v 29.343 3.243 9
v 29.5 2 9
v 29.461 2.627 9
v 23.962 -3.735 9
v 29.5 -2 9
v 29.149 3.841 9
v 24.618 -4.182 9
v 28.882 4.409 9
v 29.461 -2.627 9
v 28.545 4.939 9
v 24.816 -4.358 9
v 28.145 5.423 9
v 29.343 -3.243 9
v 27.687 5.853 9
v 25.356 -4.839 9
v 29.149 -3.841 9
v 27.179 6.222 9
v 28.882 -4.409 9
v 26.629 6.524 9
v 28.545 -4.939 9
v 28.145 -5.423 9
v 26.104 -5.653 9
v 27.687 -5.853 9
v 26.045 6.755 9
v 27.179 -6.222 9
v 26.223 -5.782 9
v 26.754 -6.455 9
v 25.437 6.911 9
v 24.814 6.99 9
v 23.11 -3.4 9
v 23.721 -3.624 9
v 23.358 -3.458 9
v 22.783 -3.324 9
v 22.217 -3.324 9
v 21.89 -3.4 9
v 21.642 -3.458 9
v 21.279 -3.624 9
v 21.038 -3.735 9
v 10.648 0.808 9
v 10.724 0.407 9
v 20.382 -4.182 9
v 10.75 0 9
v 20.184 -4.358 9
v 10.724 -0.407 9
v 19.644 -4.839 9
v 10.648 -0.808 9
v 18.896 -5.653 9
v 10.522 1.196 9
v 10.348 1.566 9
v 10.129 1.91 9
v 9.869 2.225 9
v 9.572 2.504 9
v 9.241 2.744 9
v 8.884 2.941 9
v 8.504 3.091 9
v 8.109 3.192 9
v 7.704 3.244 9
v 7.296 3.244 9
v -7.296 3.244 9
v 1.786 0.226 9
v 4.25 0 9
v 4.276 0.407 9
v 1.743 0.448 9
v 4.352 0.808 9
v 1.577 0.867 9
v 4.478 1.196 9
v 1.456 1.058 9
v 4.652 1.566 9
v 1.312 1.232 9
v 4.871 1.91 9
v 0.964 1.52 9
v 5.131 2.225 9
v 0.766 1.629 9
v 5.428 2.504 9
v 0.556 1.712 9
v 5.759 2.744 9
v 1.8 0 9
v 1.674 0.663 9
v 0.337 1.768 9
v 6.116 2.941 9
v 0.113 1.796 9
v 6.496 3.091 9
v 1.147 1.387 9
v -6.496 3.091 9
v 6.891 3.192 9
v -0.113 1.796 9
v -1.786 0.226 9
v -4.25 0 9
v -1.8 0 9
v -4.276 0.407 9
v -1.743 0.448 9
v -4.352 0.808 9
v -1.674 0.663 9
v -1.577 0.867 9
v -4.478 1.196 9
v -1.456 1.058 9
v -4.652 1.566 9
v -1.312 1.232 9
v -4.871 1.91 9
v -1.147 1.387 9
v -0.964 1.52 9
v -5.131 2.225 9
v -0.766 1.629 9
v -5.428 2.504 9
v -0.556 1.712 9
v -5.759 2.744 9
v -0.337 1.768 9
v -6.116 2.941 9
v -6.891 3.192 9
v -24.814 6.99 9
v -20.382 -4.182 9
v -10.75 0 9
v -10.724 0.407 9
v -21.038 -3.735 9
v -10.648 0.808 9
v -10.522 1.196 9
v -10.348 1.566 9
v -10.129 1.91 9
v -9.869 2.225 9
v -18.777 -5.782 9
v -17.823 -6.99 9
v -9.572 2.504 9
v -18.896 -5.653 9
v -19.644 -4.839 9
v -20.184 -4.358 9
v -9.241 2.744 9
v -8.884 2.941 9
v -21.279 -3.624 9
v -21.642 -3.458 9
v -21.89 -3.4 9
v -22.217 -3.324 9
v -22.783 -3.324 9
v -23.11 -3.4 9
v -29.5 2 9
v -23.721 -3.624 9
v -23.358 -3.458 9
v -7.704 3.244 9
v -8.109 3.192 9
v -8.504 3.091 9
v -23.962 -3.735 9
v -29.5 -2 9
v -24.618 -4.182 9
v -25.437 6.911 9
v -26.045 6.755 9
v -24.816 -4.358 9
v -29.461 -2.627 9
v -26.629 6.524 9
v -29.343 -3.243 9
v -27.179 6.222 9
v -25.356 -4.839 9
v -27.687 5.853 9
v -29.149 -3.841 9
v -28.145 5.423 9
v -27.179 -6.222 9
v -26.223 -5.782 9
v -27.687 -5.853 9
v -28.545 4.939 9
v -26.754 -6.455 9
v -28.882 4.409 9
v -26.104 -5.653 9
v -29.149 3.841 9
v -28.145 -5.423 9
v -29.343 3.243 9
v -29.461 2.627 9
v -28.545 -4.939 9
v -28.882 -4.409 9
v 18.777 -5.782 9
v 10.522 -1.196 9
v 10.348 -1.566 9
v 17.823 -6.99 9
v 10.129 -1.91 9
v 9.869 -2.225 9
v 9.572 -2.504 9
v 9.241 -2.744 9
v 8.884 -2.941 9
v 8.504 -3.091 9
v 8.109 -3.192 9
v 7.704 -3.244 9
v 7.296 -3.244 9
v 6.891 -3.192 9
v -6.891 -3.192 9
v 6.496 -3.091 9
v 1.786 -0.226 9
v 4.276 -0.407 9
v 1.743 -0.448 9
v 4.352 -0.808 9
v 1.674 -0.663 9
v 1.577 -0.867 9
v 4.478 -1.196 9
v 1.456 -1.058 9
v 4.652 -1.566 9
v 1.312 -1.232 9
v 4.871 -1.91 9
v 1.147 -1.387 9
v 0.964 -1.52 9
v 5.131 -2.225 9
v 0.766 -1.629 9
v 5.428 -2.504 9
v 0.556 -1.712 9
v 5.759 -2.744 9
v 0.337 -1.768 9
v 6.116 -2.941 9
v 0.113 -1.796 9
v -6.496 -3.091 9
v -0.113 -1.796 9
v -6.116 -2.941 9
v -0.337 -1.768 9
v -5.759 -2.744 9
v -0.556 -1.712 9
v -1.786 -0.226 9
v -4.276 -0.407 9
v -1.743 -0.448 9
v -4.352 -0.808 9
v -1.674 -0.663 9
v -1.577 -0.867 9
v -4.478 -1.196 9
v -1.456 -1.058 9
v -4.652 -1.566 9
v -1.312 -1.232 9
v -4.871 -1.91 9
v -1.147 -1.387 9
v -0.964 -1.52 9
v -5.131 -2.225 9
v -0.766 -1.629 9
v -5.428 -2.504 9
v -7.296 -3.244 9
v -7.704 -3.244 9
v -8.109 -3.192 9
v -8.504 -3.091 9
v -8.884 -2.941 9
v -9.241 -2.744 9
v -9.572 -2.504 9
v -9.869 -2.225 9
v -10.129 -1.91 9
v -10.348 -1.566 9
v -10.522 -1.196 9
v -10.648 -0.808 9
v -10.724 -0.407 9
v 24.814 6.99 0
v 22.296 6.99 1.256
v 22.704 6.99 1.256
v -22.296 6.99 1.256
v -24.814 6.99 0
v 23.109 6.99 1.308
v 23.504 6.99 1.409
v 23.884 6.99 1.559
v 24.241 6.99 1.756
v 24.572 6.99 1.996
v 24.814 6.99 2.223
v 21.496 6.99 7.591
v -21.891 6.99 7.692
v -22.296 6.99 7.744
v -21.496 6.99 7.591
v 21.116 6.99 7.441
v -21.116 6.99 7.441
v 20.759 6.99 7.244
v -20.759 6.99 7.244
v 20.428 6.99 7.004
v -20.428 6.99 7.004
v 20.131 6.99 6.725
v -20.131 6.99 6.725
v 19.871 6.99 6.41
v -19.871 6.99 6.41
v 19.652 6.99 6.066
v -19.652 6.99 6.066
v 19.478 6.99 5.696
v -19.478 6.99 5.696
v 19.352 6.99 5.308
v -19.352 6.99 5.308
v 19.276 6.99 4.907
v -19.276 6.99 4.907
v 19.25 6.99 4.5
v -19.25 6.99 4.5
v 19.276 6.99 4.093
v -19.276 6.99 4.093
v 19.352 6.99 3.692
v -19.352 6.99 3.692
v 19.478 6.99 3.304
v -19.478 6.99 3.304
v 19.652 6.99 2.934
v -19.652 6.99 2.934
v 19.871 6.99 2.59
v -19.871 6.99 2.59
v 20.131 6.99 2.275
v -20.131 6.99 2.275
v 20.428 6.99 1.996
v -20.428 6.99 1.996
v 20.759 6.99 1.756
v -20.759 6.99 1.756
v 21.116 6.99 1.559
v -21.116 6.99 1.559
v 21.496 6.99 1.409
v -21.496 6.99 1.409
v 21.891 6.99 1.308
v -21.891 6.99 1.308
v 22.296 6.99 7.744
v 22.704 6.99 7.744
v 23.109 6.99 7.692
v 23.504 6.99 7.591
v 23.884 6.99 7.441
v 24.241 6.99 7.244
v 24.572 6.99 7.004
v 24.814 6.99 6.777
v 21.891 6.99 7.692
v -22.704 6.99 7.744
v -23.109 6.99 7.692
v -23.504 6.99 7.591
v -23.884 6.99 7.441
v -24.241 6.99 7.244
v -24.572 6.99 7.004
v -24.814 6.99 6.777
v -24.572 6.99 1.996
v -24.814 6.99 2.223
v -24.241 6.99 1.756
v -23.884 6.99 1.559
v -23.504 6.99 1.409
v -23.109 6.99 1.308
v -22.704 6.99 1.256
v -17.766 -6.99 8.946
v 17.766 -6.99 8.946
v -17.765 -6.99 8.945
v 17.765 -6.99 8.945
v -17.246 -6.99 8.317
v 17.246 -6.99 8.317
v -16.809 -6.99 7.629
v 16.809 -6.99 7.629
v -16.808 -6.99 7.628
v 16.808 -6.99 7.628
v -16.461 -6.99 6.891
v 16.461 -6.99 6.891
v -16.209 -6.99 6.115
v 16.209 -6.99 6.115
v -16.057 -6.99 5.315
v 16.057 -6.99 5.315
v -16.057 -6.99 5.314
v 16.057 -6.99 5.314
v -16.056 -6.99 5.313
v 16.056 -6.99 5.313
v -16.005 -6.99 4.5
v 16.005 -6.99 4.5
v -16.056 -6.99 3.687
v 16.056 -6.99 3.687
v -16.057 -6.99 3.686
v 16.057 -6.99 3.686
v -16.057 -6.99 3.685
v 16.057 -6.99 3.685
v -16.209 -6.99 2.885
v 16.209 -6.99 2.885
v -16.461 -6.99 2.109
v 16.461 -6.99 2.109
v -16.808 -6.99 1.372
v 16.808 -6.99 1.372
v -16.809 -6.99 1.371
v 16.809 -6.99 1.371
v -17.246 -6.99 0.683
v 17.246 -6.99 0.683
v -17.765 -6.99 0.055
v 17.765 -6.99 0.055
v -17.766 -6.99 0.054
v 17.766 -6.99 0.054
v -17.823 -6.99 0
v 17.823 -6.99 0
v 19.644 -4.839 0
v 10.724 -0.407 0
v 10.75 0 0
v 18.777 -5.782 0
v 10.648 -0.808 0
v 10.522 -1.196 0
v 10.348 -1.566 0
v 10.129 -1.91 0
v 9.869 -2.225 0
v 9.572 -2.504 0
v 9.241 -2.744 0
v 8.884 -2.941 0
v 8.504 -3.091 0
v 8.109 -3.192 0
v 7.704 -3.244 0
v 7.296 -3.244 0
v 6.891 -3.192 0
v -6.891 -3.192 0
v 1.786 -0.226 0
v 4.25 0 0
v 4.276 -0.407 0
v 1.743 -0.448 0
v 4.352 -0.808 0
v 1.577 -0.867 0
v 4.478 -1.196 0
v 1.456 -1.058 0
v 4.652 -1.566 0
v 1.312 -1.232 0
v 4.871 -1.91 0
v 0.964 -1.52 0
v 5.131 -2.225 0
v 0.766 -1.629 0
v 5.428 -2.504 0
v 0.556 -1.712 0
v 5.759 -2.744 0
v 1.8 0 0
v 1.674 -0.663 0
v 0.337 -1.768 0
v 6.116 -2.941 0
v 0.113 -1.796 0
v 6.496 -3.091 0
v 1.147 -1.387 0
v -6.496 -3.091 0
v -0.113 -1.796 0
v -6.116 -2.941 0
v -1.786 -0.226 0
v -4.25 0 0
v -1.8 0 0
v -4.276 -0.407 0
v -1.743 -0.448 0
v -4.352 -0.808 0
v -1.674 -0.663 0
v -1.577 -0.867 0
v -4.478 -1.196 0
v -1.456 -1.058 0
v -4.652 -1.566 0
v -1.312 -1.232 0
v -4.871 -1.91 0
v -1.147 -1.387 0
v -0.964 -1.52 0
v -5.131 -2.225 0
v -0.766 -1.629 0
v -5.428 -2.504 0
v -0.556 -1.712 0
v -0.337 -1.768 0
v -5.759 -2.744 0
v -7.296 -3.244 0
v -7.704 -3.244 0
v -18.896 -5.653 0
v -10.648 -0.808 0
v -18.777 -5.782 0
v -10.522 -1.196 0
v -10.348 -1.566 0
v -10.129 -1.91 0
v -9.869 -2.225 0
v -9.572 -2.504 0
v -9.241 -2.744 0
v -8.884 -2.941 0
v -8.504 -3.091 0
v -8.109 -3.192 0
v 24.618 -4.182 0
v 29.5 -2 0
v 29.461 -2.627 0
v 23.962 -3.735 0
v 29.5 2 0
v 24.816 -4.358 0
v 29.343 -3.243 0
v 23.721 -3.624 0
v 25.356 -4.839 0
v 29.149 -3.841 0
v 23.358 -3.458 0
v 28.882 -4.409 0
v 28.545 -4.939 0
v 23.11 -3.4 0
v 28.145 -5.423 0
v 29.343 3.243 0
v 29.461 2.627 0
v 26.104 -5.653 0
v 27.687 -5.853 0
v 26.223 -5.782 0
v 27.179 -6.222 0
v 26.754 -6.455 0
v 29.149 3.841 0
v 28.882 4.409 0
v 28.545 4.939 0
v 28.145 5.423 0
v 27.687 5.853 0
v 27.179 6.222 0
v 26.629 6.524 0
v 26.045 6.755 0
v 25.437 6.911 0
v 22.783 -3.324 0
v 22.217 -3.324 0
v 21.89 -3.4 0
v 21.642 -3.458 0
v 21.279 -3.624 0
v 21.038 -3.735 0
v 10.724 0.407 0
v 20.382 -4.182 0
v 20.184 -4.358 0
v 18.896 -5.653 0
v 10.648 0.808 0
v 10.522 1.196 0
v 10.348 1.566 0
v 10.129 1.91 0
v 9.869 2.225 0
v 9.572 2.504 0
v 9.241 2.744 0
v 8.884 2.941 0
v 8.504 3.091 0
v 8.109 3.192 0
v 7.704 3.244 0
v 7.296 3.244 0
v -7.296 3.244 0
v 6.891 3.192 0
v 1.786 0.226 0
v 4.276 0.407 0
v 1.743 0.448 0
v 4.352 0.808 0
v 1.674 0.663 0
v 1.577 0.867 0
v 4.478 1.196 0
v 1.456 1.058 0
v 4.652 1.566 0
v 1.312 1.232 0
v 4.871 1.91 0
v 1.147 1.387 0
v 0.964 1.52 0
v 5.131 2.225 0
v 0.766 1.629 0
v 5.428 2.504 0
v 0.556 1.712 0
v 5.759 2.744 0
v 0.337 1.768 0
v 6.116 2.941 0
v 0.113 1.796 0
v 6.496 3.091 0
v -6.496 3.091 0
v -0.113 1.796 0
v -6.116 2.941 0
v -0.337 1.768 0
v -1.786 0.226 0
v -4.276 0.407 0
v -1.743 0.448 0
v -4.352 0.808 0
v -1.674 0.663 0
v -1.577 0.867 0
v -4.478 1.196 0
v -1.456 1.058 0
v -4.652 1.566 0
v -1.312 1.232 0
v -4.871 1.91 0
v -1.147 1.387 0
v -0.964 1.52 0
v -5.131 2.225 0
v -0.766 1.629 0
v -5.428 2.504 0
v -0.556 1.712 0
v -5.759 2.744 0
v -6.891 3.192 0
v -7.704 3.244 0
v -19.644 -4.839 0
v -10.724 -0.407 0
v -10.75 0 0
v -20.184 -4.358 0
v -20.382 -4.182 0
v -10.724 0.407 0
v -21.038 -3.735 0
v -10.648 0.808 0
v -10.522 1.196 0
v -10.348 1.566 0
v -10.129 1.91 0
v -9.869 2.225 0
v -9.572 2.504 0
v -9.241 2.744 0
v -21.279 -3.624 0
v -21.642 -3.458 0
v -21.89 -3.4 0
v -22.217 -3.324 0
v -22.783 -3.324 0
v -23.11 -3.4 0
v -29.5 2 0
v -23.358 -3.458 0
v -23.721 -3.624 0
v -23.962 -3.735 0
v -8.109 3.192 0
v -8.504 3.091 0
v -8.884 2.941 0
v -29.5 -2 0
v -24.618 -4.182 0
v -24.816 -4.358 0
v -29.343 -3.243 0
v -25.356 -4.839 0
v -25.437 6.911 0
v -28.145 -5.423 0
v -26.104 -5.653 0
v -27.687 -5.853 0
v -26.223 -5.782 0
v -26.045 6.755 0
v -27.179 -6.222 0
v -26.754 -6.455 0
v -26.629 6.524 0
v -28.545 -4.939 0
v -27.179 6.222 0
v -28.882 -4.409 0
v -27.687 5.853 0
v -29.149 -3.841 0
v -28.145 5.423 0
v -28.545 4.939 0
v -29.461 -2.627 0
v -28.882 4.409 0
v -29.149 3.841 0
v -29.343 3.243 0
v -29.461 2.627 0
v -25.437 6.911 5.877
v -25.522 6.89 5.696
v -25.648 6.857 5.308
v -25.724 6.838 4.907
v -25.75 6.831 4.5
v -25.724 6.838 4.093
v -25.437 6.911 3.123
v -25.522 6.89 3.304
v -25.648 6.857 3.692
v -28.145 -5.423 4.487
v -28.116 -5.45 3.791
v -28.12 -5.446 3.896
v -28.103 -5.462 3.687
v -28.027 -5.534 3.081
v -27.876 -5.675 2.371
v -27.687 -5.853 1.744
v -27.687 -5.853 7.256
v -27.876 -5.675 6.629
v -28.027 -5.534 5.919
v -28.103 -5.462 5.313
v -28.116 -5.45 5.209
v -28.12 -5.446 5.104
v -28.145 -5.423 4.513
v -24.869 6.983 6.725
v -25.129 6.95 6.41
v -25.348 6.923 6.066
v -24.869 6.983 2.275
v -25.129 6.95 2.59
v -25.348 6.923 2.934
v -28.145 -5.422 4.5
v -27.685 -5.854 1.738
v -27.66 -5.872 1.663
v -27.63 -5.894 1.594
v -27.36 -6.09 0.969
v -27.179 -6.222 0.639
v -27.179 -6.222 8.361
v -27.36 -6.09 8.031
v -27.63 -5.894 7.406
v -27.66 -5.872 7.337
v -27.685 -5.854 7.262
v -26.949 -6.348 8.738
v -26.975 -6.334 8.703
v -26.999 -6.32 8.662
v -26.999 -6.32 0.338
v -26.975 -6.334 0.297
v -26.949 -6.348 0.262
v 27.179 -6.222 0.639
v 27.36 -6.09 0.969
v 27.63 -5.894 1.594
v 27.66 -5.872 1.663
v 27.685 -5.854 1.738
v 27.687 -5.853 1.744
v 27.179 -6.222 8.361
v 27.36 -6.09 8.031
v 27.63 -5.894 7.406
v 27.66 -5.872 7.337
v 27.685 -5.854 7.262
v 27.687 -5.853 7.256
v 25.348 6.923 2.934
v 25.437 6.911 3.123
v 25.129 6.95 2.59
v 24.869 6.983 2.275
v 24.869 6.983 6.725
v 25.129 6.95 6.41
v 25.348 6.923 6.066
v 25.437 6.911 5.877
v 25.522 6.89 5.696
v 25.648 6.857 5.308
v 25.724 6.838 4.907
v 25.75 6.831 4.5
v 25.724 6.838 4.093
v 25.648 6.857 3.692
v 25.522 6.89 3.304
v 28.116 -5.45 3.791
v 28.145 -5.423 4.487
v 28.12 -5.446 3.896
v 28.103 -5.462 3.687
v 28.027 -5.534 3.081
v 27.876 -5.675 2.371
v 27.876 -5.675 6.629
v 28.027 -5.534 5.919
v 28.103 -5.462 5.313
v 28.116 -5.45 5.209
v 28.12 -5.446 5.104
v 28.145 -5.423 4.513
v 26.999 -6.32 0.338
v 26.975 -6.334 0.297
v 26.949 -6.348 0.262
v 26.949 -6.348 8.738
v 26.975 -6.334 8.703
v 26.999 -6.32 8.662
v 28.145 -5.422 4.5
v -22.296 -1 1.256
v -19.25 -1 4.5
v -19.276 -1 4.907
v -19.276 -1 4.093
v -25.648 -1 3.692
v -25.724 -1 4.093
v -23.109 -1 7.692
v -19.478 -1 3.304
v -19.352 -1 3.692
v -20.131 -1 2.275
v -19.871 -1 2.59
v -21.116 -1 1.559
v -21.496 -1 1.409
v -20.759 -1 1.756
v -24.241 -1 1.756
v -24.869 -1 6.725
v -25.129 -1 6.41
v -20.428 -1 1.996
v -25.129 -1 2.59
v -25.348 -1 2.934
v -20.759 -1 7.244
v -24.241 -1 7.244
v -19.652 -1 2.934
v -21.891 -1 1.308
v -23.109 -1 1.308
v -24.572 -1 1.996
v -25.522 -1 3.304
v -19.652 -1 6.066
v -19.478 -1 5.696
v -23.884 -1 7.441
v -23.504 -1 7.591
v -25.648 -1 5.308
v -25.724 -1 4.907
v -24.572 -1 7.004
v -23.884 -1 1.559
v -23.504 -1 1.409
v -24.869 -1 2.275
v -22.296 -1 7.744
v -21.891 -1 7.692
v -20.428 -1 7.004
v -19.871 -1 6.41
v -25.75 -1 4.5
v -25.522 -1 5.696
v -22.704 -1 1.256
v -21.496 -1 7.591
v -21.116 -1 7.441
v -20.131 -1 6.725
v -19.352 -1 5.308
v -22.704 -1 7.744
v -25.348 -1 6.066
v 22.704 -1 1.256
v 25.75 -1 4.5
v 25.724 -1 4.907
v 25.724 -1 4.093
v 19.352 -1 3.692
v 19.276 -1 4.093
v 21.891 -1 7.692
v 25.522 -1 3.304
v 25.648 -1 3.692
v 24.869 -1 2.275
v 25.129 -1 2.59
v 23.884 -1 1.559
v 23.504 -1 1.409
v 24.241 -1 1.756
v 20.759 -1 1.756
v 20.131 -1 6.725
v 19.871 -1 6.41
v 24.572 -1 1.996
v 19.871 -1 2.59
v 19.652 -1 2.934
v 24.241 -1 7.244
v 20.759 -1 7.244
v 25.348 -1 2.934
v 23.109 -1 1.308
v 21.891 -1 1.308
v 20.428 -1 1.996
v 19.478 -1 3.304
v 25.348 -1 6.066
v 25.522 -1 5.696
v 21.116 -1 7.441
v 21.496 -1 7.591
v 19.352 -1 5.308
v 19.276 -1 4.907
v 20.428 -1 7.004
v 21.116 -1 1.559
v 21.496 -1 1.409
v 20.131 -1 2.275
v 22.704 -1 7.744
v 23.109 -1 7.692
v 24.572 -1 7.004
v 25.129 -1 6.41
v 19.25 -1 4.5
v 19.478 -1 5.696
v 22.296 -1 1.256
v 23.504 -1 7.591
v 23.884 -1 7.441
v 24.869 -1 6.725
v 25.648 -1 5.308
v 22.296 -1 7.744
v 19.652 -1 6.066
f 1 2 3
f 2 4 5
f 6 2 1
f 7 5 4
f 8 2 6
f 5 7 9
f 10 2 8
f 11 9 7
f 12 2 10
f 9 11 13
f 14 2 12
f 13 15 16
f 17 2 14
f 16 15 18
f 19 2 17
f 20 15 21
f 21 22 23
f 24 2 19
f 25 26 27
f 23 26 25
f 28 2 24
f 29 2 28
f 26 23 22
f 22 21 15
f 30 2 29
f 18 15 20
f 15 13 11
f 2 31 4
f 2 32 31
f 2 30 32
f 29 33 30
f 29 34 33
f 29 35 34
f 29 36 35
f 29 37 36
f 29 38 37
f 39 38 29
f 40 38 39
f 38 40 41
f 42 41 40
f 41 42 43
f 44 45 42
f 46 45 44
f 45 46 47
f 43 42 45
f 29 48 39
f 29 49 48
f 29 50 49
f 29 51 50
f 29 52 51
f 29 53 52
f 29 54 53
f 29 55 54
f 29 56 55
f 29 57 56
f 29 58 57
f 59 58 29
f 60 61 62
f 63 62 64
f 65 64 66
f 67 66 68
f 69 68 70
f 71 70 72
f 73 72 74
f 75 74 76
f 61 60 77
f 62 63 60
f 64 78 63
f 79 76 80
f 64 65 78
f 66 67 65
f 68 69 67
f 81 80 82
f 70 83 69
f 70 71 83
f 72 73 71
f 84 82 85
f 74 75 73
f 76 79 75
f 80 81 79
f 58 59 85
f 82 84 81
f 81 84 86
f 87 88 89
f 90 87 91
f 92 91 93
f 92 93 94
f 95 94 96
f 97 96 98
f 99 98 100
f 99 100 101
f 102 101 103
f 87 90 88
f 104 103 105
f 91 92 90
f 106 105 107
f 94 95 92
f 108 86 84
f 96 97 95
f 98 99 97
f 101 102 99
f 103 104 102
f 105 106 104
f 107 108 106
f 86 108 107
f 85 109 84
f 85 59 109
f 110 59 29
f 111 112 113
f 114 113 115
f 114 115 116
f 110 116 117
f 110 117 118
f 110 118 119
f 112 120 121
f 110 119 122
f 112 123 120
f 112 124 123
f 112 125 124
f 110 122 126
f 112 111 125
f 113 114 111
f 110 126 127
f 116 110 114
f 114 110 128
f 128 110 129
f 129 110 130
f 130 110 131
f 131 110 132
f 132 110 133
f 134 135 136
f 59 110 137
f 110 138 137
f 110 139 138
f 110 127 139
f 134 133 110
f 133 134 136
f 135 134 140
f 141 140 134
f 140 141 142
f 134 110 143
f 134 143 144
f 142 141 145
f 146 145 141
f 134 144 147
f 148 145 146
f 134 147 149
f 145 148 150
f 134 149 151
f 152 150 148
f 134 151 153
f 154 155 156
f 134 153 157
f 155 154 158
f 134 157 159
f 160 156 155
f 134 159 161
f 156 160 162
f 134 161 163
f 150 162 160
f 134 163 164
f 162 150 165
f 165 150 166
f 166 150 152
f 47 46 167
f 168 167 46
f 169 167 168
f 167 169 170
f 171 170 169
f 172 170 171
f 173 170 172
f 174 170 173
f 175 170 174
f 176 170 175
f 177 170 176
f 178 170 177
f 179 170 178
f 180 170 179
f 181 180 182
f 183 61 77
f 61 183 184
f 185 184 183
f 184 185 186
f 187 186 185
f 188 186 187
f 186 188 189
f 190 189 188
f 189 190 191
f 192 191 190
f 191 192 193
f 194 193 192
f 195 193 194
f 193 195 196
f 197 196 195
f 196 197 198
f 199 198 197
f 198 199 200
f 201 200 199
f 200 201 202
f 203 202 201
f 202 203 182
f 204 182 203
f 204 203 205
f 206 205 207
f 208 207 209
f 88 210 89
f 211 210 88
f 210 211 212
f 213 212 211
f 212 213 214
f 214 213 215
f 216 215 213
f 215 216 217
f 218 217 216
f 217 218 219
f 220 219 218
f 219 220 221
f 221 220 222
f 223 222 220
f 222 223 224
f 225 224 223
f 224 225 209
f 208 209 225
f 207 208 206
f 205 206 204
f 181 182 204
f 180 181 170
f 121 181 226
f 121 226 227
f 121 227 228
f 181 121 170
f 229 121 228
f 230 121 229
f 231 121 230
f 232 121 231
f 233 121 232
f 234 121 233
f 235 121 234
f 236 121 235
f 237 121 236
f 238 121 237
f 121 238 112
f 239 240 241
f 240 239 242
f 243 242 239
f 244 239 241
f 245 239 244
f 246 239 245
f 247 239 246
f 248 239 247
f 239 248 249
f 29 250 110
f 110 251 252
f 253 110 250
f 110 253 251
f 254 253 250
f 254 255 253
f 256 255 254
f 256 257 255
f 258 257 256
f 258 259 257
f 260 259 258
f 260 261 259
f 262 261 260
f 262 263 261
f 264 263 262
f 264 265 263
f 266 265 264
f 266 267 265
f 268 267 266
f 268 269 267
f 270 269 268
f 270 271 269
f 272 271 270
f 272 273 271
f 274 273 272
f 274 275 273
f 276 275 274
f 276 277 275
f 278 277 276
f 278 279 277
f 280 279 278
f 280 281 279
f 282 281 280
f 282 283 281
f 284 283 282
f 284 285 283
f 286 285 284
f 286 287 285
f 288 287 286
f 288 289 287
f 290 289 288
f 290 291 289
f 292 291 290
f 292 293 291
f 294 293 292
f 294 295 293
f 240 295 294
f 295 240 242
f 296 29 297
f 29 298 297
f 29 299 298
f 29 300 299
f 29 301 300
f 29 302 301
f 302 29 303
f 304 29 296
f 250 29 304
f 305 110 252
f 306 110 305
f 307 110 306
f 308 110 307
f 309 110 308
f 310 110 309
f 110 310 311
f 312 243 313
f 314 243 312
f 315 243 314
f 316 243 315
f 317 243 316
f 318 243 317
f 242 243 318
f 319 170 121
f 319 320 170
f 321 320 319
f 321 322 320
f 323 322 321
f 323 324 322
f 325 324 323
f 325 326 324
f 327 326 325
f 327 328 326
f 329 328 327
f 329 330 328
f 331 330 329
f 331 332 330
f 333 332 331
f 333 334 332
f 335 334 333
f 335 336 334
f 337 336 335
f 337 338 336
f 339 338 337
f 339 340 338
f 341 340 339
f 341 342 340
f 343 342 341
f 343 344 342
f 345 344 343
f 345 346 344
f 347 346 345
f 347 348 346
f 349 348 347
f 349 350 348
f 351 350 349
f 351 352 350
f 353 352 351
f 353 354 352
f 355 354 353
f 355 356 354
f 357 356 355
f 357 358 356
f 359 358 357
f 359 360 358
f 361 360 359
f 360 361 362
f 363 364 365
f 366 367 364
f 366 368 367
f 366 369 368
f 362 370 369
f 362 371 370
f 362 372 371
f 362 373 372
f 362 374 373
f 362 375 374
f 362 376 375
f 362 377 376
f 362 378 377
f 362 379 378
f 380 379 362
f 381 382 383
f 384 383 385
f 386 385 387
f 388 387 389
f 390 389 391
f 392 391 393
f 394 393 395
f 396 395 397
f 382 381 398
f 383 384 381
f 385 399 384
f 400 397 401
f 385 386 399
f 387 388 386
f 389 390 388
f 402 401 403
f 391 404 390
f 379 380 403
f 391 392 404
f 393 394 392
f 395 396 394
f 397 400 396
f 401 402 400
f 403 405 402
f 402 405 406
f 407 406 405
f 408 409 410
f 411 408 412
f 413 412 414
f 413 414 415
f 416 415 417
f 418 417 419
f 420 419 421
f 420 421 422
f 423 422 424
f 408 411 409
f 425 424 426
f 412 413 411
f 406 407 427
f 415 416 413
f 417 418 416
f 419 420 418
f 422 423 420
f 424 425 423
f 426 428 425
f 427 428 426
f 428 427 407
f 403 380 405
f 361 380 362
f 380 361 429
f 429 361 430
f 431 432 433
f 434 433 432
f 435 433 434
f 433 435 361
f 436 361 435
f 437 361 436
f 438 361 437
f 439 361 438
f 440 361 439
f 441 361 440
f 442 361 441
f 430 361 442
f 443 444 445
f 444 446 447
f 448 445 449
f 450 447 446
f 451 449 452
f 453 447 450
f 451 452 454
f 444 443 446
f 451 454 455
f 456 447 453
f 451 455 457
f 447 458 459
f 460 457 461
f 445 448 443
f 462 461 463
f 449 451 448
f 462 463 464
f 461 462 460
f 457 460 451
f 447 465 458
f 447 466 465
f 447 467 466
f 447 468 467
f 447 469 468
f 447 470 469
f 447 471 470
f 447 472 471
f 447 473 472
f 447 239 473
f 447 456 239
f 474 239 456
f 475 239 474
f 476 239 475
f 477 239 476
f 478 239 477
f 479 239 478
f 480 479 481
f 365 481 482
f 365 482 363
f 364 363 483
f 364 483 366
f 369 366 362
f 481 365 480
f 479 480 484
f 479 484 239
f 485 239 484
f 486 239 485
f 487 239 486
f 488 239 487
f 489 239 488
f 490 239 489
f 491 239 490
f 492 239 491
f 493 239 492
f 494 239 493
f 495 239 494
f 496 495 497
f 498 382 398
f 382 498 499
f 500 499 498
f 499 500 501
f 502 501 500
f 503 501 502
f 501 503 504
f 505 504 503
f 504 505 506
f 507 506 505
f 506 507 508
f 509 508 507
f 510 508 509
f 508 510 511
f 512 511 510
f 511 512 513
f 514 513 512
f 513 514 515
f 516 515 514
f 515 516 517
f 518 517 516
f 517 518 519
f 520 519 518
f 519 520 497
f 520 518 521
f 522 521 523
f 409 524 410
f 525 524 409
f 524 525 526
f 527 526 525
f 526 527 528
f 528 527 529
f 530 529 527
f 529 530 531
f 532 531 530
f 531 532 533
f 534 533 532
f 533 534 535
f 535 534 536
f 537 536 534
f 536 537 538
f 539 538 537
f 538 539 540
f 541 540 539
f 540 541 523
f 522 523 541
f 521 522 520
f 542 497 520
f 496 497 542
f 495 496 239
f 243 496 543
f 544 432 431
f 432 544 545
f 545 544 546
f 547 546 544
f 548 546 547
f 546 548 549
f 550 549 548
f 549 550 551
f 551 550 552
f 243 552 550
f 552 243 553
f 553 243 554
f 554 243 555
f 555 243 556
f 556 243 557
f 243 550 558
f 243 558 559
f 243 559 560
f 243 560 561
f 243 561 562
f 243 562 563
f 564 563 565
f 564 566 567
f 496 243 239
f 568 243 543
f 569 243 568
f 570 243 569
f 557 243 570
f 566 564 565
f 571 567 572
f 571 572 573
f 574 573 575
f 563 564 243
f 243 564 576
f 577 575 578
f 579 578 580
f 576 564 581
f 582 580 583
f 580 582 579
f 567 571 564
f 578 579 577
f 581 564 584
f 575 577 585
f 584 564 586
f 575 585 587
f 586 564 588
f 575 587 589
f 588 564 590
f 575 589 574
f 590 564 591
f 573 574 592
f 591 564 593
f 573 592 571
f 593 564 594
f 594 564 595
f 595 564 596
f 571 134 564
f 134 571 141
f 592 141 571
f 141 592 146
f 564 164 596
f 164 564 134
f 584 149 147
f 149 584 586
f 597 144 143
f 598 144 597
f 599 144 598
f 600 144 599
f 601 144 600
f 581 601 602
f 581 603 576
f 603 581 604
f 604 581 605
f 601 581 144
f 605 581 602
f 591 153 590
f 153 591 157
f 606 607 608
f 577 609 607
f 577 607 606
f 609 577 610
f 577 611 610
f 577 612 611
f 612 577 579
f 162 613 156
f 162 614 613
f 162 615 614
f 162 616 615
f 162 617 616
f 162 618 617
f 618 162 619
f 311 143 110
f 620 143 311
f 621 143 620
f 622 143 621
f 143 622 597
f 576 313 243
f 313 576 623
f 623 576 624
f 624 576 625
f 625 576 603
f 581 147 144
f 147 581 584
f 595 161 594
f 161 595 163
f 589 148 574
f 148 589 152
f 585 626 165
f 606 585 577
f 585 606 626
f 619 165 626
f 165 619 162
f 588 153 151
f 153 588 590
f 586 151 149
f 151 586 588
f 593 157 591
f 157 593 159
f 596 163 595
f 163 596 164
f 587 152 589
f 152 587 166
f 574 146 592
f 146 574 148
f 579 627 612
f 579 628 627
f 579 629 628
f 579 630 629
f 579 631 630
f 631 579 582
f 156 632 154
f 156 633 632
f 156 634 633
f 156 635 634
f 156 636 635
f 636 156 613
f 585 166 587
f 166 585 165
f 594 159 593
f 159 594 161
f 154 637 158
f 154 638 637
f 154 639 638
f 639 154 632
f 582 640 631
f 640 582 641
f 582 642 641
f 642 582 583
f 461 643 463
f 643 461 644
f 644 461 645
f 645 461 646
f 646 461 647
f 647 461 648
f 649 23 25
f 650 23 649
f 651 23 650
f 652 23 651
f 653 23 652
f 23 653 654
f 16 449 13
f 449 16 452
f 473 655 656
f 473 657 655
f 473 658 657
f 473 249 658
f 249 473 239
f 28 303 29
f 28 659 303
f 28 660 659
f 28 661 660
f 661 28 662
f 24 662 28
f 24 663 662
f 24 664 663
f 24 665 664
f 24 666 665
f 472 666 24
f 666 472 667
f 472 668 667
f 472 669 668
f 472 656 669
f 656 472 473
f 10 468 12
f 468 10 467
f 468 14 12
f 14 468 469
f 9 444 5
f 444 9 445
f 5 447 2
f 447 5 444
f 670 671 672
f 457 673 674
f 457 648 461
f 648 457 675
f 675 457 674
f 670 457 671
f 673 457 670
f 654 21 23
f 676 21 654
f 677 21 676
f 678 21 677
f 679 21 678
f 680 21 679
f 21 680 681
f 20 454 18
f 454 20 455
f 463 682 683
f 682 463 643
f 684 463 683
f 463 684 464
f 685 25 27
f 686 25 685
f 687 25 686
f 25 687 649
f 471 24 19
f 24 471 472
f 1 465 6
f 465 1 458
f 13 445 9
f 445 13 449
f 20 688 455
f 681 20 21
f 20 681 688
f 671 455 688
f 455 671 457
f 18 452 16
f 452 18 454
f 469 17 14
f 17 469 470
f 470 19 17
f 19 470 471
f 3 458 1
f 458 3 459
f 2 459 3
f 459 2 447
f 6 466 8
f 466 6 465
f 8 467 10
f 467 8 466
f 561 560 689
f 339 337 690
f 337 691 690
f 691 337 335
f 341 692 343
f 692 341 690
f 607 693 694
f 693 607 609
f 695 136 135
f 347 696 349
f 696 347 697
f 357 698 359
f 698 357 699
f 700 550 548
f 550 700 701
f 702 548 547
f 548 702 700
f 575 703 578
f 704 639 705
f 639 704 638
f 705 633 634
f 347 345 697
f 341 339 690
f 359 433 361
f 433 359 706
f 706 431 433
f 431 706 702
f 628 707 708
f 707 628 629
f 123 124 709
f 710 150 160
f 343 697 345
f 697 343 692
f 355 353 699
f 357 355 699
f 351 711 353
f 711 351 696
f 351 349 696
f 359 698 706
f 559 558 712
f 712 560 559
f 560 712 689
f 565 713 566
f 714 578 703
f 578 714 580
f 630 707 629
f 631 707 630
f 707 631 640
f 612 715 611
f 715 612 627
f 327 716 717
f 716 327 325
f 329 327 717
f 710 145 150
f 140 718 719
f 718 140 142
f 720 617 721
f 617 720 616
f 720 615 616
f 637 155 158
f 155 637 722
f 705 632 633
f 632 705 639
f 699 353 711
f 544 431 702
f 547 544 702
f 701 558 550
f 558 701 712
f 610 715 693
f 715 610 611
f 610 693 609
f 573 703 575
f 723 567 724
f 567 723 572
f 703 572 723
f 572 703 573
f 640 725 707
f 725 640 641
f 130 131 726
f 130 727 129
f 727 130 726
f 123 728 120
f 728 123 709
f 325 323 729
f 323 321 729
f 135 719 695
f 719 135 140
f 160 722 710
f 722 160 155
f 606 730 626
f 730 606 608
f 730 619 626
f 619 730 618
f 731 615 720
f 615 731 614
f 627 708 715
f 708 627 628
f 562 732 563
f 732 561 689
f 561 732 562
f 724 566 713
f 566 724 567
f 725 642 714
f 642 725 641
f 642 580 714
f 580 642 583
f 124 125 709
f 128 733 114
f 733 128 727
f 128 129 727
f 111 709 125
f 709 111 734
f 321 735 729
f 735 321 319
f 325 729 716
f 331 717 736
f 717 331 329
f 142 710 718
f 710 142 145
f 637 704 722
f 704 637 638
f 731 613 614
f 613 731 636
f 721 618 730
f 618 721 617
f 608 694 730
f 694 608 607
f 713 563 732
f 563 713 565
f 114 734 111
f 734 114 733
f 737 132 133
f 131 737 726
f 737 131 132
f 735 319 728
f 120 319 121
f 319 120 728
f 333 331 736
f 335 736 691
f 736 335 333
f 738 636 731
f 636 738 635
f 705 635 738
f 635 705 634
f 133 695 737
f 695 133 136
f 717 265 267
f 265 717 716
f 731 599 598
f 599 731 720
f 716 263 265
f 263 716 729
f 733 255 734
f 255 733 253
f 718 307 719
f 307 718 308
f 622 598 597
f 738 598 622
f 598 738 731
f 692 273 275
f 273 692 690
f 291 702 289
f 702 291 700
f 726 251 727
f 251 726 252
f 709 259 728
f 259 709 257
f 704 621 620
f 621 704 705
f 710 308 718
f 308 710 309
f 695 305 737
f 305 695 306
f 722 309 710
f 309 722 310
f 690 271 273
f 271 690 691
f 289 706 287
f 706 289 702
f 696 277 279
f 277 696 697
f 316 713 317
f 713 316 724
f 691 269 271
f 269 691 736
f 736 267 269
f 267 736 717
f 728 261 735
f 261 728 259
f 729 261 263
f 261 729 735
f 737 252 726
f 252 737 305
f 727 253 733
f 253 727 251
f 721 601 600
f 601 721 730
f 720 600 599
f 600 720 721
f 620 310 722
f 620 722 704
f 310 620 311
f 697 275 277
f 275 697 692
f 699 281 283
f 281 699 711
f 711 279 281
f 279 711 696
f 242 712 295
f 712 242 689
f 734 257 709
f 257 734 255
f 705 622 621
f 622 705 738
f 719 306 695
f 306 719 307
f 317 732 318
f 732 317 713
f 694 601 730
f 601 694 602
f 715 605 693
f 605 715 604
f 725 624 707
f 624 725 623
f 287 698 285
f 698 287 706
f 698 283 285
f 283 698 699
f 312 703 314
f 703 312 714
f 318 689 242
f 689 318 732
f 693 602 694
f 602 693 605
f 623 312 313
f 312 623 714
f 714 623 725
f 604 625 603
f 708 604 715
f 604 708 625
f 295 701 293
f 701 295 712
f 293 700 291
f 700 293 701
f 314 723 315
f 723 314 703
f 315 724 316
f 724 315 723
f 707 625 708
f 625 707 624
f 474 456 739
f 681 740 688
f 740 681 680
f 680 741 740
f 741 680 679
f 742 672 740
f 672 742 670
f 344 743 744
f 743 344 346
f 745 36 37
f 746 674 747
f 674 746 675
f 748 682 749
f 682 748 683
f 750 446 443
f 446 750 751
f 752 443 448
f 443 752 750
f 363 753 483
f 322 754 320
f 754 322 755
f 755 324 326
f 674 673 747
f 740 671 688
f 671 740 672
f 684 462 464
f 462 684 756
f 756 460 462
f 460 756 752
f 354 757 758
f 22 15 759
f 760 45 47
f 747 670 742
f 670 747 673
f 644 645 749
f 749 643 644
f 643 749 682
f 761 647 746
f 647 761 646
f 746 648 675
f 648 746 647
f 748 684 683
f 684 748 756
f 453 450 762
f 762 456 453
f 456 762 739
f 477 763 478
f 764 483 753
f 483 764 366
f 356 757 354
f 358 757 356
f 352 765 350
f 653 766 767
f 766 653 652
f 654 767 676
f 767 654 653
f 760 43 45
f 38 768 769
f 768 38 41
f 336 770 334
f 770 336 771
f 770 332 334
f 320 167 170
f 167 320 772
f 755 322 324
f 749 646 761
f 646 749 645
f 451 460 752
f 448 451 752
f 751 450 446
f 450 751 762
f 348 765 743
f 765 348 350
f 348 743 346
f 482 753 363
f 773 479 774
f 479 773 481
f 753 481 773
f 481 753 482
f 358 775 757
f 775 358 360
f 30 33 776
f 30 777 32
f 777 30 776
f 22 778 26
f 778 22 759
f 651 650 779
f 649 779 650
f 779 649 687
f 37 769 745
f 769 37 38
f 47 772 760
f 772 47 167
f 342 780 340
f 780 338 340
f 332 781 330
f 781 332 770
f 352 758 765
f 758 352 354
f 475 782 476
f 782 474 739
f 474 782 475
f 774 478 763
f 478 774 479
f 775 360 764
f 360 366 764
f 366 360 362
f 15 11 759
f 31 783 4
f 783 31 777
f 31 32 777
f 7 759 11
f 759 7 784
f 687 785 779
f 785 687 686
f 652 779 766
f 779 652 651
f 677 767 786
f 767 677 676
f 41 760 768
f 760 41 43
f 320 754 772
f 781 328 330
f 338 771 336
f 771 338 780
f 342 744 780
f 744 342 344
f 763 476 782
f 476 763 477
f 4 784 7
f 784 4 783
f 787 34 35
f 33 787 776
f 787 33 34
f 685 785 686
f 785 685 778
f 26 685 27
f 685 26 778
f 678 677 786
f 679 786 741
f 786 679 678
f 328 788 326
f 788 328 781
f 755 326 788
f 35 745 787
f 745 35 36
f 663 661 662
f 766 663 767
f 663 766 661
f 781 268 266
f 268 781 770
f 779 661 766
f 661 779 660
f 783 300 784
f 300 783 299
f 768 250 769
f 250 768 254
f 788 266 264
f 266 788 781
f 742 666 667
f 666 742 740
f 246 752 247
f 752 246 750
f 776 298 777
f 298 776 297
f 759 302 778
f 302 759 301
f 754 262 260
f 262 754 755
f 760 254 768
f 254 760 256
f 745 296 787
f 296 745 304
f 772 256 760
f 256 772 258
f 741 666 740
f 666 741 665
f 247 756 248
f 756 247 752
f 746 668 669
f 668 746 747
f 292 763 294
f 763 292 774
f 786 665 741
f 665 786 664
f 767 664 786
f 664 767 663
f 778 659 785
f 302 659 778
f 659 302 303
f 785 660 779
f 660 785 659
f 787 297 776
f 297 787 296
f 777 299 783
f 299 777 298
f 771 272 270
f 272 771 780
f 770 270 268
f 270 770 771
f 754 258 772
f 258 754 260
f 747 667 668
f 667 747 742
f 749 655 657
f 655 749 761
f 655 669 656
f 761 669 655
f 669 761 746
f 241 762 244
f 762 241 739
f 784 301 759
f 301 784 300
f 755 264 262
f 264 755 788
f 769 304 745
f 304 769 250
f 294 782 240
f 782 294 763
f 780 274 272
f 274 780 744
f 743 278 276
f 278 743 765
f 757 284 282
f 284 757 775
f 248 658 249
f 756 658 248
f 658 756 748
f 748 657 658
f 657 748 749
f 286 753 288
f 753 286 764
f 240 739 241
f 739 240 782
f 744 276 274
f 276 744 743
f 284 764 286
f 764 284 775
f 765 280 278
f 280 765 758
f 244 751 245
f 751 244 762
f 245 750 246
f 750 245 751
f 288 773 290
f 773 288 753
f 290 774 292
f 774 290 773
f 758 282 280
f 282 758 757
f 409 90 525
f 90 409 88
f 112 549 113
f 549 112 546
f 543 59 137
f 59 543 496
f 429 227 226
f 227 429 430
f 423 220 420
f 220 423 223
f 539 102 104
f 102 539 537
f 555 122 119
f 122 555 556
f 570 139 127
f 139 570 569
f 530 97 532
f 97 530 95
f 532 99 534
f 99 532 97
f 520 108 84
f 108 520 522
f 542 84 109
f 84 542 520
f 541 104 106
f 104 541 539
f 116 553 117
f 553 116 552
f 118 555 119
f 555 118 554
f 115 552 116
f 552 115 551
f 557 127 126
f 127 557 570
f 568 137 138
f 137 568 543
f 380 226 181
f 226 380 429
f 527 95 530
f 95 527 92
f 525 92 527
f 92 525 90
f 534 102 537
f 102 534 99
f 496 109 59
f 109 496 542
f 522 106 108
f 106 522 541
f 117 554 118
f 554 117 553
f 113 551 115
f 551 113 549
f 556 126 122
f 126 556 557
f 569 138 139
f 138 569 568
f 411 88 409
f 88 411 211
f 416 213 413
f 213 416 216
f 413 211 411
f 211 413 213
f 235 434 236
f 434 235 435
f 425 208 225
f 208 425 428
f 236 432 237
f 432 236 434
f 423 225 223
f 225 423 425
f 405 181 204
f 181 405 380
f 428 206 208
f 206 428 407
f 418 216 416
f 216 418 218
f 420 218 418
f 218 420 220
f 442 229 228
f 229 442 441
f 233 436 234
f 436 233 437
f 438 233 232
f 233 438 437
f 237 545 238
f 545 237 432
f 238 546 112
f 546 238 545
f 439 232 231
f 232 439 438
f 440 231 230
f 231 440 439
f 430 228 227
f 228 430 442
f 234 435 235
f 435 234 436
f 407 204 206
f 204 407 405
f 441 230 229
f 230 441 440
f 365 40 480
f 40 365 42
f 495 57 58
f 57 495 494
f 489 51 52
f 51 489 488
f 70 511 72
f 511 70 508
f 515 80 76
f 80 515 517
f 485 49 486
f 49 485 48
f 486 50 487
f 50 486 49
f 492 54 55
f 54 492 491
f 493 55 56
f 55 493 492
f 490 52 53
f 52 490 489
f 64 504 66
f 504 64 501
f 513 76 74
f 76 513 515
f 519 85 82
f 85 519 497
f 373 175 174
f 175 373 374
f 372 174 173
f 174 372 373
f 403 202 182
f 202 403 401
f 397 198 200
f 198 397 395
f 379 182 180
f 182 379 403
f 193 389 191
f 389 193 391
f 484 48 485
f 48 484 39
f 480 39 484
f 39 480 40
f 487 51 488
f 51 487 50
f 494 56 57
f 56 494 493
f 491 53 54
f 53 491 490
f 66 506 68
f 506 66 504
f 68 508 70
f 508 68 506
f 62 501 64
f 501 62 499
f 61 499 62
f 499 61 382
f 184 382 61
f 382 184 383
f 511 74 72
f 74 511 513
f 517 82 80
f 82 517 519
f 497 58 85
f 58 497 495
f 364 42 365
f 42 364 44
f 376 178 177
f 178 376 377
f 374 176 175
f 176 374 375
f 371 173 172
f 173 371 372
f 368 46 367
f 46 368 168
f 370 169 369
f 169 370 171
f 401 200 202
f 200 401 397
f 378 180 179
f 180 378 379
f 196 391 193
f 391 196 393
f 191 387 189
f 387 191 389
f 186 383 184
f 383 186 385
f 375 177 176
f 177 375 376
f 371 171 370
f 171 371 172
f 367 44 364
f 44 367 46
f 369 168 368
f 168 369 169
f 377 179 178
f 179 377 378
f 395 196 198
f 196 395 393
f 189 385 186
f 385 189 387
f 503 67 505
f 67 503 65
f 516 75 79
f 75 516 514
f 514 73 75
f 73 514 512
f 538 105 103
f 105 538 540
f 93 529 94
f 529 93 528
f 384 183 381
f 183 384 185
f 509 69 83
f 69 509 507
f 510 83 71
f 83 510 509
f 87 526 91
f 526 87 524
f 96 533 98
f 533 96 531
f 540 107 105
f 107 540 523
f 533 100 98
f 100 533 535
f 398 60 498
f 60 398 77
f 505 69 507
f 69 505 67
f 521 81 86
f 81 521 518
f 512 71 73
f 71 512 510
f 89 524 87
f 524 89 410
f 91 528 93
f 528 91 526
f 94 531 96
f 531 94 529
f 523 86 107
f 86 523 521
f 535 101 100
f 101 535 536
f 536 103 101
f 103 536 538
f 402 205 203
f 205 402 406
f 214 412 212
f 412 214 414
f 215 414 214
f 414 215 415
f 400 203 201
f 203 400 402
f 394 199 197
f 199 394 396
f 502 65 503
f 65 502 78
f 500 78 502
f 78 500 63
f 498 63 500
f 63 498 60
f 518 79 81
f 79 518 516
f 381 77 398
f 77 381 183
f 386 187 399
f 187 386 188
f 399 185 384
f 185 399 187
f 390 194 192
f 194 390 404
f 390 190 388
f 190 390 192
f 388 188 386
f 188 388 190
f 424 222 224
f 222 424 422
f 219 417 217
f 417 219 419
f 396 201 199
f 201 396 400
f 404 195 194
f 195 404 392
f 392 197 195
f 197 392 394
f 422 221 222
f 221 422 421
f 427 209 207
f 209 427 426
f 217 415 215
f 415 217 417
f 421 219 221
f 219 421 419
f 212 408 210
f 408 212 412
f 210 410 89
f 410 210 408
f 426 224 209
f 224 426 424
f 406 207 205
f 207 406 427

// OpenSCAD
$fn = 50;


difference() {
	union() {
		hull() {
			translate(v = [-9.5000000000, 2.0000000000, 0]) {
				cylinder(h = 9, r = 5);
			}
			translate(v = [9.5000000000, 2.0000000000, 0]) {
				cylinder(h = 9, r = 5);
			}
			translate(v = [-9.5000000000, -2.0000000000, 0]) {
				cylinder(h = 9, r = 5);
			}
			translate(v = [9.5000000000, -2.0000000000, 0]) {
				cylinder(h = 9, r = 5);
			}
		}
		translate(v = [-15.0000000000, 0.0000000000, 0]) {
			hull() {
				translate(v = [-9.5000000000, 2.0000000000, 0]) {
					cylinder(h = 9, r = 5);
				}
				translate(v = [9.5000000000, 2.0000000000, 0]) {
					cylinder(h = 9, r = 5);
				}
				translate(v = [-9.5000000000, -2.0000000000, 0]) {
					cylinder(h = 9, r = 5);
				}
				translate(v = [9.5000000000, -2.0000000000, 0]) {
					cylinder(h = 9, r = 5);
				}
			}
		}
		translate(v = [-15.0000000000, 0.0000000000, 0]) {
			hull() {
				translate(v = [-9.5000000000, 2.0000000000, 0]) {
					cylinder(h = 9, r = 5);
				}
				translate(v = [9.5000000000, 2.0000000000, 0]) {
					cylinder(h = 9, r = 5);
				}
				translate(v = [-9.5000000000, -2.0000000000, 0]) {
					cylinder(h = 9, r = 5);
				}
				translate(v = [9.5000000000, -2.0000000000, 0]) {
					cylinder(h = 9, r = 5);
				}
			}
		}
		translate(v = [15.0000000000, 0.0000000000, 0]) {
			hull() {
				translate(v = [-9.5000000000, 2.0000000000, 0]) {
					cylinder(h = 9, r = 5);
				}
				translate(v = [9.5000000000, 2.0000000000, 0]) {
					cylinder(h = 9, r = 5);
				}
				translate(v = [-9.5000000000, -2.0000000000, 0]) {
					cylinder(h = 9, r = 5);
				}
				translate(v = [9.5000000000, -2.0000000000, 0]) {
					cylinder(h = 9, r = 5);
				}
			}
		}
		translate(v = [15.0000000000, 0.0000000000, 0]) {
			hull() {
				translate(v = [-9.5000000000, 2.0000000000, 0]) {
					cylinder(h = 9, r = 5);
				}
				translate(v = [9.5000000000, 2.0000000000, 0]) {
					cylinder(h = 9, r = 5);
				}
				translate(v = [-9.5000000000, -2.0000000000, 0]) {
					cylinder(h = 9, r = 5);
				}
				translate(v = [9.5000000000, -2.0000000000, 0]) {
					cylinder(h = 9, r = 5);
				}
			}
		}
	}
	union() {
		translate(v = [-22.5000000000, -7.0000000000, 4.5000000000]) {
			rotate(a = [90, 0, 0]) {
				difference() {
					union() {
						#translate(v = [0, 0, -14.0000000000]) {
							cylinder(h = 14, r = 2.2500000000);
						}
						#translate(v = [0, 0, -6]) {
							cylinder(h = 6, r1 = 3.2500000000, r2 = 6.5000000000);
						}
						#translate(v = [0, 0, -14.0000000000]) {
							cylinder(h = 14, r = 3.2500000000);
						}
						#translate(v = [0, 0, -14.0000000000]) {
							cylinder(h = 14, r = 2.2500000000);
						}
					}
					union();
				}
			}
		}
		translate(v = [22.5000000000, -7.0000000000, 4.5000000000]) {
			rotate(a = [90, 0, 0]) {
				difference() {
					union() {
						#translate(v = [0, 0, -14.0000000000]) {
							cylinder(h = 14, r = 2.2500000000);
						}
						#translate(v = [0, 0, -6]) {
							cylinder(h = 6, r1 = 3.2500000000, r2 = 6.5000000000);
						}
						#translate(v = [0, 0, -14.0000000000]) {
							cylinder(h = 14, r = 3.2500000000);
						}
						#translate(v = [0, 0, -14.0000000000]) {
							cylinder(h = 14, r = 2.2500000000);
						}
					}
					union();
				}
			}
		}
		translate(v = [-7.5000000000, 0.0000000000, 0]) {
			translate(v = [0, 0, -100]) {
				cylinder(h = 200, r = 3.2500000000);
			}
		}
		translate(v = [7.5000000000, 0.0000000000, 0]) {
			translate(v = [0, 0, -100]) {
				cylinder(h = 200, r = 3.2500000000);
			}
		}
		translate(v = [-7.5000000000, 0.0000000000, 0]) {
			translate(v = [0, 0, -100]) {
				cylinder(h = 200, r = 1.8000000000);
			}
		}
		translate(v = [0, 0, -100]) {
			cylinder(h = 200, r = 1.8000000000);
		}
		translate(v = [7.5000000000, 0.0000000000, 0]) {
			translate(v = [0, 0, -100]) {
				cylinder(h = 200, r = 1.8000000000);
			}
		}
	}
}
